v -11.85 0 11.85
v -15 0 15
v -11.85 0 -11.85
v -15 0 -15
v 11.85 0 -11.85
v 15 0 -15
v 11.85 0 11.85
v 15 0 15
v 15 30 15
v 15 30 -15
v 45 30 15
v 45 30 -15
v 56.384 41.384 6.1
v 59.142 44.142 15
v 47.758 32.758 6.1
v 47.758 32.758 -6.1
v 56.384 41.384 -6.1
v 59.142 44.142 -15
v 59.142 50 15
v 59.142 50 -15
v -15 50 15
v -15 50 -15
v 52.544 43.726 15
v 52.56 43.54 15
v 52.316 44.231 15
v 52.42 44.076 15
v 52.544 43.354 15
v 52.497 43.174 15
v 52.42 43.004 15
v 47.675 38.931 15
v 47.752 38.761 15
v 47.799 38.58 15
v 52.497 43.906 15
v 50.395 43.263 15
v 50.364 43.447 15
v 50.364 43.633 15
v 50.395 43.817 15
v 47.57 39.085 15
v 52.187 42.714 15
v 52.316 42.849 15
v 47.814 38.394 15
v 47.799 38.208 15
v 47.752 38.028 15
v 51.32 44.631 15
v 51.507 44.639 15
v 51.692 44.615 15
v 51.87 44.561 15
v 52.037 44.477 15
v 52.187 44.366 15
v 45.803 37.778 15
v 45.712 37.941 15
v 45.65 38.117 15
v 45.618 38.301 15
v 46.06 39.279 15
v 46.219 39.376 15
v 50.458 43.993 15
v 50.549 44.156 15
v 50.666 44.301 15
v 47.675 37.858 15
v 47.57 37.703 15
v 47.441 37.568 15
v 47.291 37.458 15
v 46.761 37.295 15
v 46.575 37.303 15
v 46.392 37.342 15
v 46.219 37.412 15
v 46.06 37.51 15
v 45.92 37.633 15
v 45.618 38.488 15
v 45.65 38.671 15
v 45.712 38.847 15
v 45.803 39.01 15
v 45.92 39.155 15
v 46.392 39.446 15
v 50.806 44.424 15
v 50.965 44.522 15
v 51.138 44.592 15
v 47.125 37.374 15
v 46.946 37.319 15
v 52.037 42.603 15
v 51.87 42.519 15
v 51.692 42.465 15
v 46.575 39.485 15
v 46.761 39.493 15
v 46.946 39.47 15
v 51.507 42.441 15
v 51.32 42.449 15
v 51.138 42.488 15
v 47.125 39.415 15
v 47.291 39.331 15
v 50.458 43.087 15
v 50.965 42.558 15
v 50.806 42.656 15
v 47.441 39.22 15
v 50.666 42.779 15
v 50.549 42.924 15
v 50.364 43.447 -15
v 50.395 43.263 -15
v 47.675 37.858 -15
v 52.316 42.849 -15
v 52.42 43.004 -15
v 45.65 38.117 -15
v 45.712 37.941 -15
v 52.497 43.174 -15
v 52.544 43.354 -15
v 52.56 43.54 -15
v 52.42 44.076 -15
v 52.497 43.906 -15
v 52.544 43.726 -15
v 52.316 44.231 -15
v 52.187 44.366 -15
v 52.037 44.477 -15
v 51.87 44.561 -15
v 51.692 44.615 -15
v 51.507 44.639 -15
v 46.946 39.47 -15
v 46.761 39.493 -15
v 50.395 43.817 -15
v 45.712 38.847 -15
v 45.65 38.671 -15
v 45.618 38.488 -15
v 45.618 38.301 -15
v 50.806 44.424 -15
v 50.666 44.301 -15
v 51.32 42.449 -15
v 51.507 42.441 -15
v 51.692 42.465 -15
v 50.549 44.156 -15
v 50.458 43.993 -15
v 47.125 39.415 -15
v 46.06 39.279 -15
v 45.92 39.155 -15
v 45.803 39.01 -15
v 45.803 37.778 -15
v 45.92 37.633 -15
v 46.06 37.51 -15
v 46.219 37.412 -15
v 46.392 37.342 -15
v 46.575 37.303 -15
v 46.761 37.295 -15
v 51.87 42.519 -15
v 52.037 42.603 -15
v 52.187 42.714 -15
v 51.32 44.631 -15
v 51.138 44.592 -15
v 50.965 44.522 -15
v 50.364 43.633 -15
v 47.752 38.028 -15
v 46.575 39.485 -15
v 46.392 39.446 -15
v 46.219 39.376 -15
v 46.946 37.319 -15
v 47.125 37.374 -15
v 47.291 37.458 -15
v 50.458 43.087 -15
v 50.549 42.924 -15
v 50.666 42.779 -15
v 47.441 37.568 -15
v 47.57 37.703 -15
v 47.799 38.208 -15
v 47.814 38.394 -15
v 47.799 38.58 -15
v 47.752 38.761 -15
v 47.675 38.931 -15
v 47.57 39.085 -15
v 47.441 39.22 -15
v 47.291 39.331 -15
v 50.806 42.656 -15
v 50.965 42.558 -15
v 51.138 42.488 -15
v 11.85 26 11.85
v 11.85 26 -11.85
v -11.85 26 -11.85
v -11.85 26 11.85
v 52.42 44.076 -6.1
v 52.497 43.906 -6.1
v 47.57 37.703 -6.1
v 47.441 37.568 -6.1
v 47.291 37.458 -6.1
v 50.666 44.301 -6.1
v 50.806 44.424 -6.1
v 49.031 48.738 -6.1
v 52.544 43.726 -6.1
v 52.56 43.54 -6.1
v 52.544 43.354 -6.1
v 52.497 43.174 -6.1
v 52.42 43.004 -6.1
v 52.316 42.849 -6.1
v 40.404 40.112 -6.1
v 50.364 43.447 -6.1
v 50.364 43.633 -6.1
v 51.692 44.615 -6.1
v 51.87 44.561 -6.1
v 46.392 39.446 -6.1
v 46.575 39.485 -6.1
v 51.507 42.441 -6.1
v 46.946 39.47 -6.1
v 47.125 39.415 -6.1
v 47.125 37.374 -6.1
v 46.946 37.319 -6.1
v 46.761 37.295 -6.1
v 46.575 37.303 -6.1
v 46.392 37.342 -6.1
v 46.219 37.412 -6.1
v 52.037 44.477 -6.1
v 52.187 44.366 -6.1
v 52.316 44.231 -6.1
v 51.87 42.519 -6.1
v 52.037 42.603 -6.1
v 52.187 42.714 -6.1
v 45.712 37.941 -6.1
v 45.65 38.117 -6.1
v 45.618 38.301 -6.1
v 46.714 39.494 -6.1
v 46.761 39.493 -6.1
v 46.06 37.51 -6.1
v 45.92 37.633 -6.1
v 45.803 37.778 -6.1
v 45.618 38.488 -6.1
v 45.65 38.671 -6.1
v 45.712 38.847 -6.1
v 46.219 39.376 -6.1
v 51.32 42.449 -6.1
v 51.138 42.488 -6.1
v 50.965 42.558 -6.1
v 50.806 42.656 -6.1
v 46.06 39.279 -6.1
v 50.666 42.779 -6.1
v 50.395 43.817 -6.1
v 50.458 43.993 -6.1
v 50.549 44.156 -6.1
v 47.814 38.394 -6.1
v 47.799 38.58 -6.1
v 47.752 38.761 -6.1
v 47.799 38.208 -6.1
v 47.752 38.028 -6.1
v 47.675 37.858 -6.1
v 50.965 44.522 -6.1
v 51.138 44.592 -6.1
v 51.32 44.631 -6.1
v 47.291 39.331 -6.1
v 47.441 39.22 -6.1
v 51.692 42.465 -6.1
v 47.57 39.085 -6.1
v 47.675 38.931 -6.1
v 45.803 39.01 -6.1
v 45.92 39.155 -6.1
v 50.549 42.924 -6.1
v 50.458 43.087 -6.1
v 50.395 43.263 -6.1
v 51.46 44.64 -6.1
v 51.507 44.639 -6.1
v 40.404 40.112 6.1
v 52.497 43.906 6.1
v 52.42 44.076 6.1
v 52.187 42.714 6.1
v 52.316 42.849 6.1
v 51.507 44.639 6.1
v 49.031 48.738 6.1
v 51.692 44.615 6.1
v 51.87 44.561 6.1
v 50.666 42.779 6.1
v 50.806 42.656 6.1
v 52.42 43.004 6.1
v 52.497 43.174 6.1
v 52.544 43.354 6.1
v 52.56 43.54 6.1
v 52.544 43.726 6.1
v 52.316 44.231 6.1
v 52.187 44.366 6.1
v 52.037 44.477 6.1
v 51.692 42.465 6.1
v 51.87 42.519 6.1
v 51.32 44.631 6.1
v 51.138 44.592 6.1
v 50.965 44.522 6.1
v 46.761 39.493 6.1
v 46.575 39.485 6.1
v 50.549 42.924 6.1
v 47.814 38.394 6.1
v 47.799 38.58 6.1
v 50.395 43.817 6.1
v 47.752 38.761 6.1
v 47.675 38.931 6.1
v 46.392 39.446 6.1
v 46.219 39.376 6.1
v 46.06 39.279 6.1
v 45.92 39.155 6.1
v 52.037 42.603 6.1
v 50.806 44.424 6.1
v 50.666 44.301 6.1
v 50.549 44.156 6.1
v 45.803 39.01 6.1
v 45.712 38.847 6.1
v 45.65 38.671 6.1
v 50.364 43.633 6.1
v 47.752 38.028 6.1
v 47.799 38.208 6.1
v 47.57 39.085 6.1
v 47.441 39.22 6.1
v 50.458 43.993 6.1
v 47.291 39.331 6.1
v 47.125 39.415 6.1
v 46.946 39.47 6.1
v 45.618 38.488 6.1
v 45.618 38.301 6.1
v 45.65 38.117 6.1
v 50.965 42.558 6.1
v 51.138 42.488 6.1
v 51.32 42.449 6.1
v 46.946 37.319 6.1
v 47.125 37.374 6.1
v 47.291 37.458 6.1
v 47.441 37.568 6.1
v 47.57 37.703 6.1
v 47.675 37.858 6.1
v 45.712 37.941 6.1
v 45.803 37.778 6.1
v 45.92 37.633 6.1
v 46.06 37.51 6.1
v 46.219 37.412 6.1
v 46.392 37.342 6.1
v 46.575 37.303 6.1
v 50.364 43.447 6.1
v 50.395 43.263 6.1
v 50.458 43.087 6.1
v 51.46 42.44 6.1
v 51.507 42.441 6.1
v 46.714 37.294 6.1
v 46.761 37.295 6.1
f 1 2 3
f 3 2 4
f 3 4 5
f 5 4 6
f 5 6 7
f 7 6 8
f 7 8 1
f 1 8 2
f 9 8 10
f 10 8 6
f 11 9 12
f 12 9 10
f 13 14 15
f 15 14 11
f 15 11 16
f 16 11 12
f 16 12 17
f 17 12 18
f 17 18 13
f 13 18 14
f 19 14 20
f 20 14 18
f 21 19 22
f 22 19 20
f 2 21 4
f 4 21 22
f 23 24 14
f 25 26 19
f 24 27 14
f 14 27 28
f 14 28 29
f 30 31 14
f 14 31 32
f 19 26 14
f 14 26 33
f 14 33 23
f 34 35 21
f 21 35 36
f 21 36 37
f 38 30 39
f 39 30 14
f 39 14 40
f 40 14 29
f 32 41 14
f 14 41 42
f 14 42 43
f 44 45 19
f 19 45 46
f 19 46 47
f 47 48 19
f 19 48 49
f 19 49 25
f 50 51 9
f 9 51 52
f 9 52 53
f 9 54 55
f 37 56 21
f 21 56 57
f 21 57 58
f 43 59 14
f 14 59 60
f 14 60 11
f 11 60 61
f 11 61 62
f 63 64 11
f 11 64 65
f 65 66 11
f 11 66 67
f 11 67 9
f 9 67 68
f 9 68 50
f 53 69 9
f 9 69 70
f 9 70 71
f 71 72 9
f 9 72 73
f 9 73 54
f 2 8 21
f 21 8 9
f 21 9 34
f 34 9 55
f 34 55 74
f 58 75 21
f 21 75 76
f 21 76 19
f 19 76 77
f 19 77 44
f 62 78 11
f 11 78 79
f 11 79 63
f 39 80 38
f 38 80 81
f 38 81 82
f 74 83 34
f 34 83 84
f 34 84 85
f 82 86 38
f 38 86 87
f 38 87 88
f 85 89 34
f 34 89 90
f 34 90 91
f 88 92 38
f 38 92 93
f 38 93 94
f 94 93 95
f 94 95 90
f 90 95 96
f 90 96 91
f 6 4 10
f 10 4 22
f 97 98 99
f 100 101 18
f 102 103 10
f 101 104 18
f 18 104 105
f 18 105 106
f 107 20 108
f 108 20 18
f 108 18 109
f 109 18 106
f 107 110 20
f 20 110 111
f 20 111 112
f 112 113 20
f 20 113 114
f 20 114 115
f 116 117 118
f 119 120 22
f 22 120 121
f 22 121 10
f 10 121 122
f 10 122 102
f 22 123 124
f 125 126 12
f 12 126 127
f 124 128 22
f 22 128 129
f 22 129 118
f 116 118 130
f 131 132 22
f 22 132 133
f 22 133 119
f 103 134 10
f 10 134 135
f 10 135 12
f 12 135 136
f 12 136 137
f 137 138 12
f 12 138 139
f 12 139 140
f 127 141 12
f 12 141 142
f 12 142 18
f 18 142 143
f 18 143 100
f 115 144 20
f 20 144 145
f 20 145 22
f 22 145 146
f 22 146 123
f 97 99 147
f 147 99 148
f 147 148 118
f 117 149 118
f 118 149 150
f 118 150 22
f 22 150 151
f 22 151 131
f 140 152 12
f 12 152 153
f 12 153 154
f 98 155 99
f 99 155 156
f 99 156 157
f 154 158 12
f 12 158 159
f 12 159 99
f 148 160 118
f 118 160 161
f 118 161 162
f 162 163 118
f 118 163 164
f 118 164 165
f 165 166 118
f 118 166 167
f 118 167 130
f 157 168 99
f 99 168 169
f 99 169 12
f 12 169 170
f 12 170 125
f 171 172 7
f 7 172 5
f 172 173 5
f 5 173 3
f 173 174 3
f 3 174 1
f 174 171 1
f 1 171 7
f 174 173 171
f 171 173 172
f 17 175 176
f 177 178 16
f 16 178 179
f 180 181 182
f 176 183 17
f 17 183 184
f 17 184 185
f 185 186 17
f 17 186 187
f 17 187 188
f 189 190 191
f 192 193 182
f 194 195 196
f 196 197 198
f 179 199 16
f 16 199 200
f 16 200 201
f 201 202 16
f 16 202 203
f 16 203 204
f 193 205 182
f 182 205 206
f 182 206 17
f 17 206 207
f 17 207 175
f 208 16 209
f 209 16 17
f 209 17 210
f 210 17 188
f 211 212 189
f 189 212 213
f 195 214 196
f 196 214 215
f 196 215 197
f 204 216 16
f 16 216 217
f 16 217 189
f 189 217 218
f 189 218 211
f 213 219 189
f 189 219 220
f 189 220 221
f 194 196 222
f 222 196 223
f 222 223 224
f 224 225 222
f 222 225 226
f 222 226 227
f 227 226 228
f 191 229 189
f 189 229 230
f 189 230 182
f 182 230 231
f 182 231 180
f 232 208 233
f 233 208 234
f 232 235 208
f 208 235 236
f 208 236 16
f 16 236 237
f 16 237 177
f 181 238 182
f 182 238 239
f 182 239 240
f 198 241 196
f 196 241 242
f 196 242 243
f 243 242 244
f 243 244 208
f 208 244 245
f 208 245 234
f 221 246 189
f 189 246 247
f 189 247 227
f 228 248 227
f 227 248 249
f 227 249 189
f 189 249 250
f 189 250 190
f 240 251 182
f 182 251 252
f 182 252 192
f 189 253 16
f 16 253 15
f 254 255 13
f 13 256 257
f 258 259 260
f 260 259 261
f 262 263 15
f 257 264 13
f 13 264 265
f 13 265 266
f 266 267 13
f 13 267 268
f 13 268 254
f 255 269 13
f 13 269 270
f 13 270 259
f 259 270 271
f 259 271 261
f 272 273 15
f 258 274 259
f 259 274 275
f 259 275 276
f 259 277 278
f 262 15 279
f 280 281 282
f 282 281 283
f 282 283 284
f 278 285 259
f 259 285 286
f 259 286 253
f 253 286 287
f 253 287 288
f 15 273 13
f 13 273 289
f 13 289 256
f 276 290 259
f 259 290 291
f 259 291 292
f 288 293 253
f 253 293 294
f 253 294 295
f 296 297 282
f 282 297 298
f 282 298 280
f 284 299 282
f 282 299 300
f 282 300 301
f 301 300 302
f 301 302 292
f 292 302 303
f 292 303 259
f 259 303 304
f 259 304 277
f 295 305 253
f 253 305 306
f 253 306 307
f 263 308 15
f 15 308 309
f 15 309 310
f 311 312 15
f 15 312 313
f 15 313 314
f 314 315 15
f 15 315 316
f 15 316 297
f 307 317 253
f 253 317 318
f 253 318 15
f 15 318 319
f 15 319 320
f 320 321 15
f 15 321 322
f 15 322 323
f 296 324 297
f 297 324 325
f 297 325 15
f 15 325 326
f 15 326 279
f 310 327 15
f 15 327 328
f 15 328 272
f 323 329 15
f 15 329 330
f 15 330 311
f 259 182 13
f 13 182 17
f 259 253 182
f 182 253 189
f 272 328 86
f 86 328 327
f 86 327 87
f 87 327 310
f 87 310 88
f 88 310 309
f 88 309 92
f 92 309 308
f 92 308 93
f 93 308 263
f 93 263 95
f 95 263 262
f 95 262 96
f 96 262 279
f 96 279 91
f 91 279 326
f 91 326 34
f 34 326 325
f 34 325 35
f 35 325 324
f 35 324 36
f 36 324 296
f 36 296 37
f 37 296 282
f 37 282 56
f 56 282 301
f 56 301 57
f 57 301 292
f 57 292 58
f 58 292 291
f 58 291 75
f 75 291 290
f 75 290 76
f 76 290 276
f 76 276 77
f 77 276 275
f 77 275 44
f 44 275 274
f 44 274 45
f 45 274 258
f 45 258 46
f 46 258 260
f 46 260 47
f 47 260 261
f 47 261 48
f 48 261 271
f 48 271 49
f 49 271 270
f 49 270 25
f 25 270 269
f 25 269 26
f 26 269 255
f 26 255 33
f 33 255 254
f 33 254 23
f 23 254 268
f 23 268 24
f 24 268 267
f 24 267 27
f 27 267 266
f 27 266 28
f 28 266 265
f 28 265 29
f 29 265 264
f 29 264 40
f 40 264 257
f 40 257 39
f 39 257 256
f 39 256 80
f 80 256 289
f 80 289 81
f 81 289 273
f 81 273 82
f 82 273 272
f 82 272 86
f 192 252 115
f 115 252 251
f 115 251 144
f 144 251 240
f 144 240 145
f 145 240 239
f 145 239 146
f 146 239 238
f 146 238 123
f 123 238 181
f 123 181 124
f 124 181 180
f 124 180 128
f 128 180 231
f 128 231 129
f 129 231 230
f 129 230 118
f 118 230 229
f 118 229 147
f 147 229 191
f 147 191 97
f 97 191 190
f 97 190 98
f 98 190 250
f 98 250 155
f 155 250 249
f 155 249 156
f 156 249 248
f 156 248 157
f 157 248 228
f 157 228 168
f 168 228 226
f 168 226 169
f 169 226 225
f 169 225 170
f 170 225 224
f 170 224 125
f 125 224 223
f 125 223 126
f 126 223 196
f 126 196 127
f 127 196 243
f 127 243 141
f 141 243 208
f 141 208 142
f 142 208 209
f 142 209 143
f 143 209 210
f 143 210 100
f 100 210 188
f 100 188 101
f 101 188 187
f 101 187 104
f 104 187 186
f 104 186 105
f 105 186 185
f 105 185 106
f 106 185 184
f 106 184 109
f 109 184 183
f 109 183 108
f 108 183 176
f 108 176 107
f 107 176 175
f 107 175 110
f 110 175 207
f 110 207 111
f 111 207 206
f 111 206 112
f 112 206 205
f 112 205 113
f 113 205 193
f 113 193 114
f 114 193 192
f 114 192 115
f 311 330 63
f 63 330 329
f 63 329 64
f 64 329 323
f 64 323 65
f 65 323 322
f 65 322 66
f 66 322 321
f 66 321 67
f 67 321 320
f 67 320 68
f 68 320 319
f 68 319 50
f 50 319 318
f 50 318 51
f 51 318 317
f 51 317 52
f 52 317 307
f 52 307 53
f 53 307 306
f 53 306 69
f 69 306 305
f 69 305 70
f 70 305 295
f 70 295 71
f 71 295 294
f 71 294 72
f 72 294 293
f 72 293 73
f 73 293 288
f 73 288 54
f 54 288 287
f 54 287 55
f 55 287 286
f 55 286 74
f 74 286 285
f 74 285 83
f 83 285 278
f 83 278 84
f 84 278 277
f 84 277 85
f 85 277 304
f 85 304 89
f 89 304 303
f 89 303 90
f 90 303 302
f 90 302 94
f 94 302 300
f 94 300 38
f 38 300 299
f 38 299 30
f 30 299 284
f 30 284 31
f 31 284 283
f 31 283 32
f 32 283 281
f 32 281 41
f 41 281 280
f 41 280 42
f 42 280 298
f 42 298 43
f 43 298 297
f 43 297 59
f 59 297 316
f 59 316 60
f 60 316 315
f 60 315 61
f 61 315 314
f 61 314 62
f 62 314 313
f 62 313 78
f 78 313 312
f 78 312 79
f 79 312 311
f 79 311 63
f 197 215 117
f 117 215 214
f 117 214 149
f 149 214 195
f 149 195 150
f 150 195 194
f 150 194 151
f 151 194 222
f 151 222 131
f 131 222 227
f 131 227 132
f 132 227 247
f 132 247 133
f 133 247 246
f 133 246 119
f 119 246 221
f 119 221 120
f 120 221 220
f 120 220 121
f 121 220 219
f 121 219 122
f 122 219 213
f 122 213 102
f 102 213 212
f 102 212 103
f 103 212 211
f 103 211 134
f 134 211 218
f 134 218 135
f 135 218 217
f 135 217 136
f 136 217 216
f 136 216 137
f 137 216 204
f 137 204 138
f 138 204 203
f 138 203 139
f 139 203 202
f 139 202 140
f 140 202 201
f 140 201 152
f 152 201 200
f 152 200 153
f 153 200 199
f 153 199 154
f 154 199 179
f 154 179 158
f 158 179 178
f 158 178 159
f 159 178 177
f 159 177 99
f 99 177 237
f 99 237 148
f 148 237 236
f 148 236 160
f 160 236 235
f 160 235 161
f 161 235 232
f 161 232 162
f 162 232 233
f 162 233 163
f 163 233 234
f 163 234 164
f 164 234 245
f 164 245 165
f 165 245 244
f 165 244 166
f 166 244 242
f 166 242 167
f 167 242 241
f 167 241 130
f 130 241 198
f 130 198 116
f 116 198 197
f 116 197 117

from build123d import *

# Parameters (mm, degrees)
BOSS_EXTRUDE1_DEPTH = 15
SKETCH2_W           = 23.7
SKETCH2_H           = 23.7
CUT_EXTRUDE1_DEPTH  = 26
SKETCH5_W           = 12.2
SKETCH5_H           = 12.2
CUT_EXTRUDE3_DEPTH  = 10.4
SKETCH6_R           = 1.1
CUT_EXTRUDE4_DEPTH  = 84.052948209
SKETCH7_R           = 1.1
CUT_EXTRUDE5_DEPTH  = 84.052948209


with BuildPart() as part:
    # Sketch1 → Boss-Extrude1 (new, symmetric)
    with BuildSketch(Plane.XY):
        Polygon((0, 0), (15, 0), (15, 30), (45, 30), (59.142135624, 44.142135624), (59.142135624, 50), (-15, 50), (-15, 0), align=None)
    extrude(amount=BOSS_EXTRUDE1_DEPTH, both=True)

    # Sketch2 → Cut-Extrude1 (cut)
    with BuildSketch(Plane.XZ):
        Rectangle(SKETCH2_W, SKETCH2_H)
    extrude(amount=-CUT_EXTRUDE1_DEPTH, mode=Mode.SUBTRACT)

    # Sketch5 → Cut-Extrude3 (cut)
    with BuildSketch(Plane(origin=(7.5, -7.5, 0), x_dir=(0, 0, -1), z_dir=(0.7071067811865487, -0.7071067811865465, 0))):
        with Locations((0, 63.033008589)):
            Rectangle(SKETCH5_W, SKETCH5_H)
    extrude(amount=-CUT_EXTRUDE3_DEPTH, mode=Mode.SUBTRACT)

    # Sketch6 → Cut-Extrude4 (cut, through all)
    with BuildSketch(Plane.XY.offset(15)):
        with Locations((51.46, 43.54)):
            Circle(SKETCH6_R)
    extrude(amount=-CUT_EXTRUDE4_DEPTH, mode=Mode.SUBTRACT)

    # Sketch7 → Cut-Extrude5 (cut, through all)
    with BuildSketch(Plane.XY.offset(15)):
        with Locations((46.714373567, 38.394222143)):
            Circle(SKETCH7_R)
    extrude(amount=-CUT_EXTRUDE5_DEPTH, mode=Mode.SUBTRACT)


solid = part.part
